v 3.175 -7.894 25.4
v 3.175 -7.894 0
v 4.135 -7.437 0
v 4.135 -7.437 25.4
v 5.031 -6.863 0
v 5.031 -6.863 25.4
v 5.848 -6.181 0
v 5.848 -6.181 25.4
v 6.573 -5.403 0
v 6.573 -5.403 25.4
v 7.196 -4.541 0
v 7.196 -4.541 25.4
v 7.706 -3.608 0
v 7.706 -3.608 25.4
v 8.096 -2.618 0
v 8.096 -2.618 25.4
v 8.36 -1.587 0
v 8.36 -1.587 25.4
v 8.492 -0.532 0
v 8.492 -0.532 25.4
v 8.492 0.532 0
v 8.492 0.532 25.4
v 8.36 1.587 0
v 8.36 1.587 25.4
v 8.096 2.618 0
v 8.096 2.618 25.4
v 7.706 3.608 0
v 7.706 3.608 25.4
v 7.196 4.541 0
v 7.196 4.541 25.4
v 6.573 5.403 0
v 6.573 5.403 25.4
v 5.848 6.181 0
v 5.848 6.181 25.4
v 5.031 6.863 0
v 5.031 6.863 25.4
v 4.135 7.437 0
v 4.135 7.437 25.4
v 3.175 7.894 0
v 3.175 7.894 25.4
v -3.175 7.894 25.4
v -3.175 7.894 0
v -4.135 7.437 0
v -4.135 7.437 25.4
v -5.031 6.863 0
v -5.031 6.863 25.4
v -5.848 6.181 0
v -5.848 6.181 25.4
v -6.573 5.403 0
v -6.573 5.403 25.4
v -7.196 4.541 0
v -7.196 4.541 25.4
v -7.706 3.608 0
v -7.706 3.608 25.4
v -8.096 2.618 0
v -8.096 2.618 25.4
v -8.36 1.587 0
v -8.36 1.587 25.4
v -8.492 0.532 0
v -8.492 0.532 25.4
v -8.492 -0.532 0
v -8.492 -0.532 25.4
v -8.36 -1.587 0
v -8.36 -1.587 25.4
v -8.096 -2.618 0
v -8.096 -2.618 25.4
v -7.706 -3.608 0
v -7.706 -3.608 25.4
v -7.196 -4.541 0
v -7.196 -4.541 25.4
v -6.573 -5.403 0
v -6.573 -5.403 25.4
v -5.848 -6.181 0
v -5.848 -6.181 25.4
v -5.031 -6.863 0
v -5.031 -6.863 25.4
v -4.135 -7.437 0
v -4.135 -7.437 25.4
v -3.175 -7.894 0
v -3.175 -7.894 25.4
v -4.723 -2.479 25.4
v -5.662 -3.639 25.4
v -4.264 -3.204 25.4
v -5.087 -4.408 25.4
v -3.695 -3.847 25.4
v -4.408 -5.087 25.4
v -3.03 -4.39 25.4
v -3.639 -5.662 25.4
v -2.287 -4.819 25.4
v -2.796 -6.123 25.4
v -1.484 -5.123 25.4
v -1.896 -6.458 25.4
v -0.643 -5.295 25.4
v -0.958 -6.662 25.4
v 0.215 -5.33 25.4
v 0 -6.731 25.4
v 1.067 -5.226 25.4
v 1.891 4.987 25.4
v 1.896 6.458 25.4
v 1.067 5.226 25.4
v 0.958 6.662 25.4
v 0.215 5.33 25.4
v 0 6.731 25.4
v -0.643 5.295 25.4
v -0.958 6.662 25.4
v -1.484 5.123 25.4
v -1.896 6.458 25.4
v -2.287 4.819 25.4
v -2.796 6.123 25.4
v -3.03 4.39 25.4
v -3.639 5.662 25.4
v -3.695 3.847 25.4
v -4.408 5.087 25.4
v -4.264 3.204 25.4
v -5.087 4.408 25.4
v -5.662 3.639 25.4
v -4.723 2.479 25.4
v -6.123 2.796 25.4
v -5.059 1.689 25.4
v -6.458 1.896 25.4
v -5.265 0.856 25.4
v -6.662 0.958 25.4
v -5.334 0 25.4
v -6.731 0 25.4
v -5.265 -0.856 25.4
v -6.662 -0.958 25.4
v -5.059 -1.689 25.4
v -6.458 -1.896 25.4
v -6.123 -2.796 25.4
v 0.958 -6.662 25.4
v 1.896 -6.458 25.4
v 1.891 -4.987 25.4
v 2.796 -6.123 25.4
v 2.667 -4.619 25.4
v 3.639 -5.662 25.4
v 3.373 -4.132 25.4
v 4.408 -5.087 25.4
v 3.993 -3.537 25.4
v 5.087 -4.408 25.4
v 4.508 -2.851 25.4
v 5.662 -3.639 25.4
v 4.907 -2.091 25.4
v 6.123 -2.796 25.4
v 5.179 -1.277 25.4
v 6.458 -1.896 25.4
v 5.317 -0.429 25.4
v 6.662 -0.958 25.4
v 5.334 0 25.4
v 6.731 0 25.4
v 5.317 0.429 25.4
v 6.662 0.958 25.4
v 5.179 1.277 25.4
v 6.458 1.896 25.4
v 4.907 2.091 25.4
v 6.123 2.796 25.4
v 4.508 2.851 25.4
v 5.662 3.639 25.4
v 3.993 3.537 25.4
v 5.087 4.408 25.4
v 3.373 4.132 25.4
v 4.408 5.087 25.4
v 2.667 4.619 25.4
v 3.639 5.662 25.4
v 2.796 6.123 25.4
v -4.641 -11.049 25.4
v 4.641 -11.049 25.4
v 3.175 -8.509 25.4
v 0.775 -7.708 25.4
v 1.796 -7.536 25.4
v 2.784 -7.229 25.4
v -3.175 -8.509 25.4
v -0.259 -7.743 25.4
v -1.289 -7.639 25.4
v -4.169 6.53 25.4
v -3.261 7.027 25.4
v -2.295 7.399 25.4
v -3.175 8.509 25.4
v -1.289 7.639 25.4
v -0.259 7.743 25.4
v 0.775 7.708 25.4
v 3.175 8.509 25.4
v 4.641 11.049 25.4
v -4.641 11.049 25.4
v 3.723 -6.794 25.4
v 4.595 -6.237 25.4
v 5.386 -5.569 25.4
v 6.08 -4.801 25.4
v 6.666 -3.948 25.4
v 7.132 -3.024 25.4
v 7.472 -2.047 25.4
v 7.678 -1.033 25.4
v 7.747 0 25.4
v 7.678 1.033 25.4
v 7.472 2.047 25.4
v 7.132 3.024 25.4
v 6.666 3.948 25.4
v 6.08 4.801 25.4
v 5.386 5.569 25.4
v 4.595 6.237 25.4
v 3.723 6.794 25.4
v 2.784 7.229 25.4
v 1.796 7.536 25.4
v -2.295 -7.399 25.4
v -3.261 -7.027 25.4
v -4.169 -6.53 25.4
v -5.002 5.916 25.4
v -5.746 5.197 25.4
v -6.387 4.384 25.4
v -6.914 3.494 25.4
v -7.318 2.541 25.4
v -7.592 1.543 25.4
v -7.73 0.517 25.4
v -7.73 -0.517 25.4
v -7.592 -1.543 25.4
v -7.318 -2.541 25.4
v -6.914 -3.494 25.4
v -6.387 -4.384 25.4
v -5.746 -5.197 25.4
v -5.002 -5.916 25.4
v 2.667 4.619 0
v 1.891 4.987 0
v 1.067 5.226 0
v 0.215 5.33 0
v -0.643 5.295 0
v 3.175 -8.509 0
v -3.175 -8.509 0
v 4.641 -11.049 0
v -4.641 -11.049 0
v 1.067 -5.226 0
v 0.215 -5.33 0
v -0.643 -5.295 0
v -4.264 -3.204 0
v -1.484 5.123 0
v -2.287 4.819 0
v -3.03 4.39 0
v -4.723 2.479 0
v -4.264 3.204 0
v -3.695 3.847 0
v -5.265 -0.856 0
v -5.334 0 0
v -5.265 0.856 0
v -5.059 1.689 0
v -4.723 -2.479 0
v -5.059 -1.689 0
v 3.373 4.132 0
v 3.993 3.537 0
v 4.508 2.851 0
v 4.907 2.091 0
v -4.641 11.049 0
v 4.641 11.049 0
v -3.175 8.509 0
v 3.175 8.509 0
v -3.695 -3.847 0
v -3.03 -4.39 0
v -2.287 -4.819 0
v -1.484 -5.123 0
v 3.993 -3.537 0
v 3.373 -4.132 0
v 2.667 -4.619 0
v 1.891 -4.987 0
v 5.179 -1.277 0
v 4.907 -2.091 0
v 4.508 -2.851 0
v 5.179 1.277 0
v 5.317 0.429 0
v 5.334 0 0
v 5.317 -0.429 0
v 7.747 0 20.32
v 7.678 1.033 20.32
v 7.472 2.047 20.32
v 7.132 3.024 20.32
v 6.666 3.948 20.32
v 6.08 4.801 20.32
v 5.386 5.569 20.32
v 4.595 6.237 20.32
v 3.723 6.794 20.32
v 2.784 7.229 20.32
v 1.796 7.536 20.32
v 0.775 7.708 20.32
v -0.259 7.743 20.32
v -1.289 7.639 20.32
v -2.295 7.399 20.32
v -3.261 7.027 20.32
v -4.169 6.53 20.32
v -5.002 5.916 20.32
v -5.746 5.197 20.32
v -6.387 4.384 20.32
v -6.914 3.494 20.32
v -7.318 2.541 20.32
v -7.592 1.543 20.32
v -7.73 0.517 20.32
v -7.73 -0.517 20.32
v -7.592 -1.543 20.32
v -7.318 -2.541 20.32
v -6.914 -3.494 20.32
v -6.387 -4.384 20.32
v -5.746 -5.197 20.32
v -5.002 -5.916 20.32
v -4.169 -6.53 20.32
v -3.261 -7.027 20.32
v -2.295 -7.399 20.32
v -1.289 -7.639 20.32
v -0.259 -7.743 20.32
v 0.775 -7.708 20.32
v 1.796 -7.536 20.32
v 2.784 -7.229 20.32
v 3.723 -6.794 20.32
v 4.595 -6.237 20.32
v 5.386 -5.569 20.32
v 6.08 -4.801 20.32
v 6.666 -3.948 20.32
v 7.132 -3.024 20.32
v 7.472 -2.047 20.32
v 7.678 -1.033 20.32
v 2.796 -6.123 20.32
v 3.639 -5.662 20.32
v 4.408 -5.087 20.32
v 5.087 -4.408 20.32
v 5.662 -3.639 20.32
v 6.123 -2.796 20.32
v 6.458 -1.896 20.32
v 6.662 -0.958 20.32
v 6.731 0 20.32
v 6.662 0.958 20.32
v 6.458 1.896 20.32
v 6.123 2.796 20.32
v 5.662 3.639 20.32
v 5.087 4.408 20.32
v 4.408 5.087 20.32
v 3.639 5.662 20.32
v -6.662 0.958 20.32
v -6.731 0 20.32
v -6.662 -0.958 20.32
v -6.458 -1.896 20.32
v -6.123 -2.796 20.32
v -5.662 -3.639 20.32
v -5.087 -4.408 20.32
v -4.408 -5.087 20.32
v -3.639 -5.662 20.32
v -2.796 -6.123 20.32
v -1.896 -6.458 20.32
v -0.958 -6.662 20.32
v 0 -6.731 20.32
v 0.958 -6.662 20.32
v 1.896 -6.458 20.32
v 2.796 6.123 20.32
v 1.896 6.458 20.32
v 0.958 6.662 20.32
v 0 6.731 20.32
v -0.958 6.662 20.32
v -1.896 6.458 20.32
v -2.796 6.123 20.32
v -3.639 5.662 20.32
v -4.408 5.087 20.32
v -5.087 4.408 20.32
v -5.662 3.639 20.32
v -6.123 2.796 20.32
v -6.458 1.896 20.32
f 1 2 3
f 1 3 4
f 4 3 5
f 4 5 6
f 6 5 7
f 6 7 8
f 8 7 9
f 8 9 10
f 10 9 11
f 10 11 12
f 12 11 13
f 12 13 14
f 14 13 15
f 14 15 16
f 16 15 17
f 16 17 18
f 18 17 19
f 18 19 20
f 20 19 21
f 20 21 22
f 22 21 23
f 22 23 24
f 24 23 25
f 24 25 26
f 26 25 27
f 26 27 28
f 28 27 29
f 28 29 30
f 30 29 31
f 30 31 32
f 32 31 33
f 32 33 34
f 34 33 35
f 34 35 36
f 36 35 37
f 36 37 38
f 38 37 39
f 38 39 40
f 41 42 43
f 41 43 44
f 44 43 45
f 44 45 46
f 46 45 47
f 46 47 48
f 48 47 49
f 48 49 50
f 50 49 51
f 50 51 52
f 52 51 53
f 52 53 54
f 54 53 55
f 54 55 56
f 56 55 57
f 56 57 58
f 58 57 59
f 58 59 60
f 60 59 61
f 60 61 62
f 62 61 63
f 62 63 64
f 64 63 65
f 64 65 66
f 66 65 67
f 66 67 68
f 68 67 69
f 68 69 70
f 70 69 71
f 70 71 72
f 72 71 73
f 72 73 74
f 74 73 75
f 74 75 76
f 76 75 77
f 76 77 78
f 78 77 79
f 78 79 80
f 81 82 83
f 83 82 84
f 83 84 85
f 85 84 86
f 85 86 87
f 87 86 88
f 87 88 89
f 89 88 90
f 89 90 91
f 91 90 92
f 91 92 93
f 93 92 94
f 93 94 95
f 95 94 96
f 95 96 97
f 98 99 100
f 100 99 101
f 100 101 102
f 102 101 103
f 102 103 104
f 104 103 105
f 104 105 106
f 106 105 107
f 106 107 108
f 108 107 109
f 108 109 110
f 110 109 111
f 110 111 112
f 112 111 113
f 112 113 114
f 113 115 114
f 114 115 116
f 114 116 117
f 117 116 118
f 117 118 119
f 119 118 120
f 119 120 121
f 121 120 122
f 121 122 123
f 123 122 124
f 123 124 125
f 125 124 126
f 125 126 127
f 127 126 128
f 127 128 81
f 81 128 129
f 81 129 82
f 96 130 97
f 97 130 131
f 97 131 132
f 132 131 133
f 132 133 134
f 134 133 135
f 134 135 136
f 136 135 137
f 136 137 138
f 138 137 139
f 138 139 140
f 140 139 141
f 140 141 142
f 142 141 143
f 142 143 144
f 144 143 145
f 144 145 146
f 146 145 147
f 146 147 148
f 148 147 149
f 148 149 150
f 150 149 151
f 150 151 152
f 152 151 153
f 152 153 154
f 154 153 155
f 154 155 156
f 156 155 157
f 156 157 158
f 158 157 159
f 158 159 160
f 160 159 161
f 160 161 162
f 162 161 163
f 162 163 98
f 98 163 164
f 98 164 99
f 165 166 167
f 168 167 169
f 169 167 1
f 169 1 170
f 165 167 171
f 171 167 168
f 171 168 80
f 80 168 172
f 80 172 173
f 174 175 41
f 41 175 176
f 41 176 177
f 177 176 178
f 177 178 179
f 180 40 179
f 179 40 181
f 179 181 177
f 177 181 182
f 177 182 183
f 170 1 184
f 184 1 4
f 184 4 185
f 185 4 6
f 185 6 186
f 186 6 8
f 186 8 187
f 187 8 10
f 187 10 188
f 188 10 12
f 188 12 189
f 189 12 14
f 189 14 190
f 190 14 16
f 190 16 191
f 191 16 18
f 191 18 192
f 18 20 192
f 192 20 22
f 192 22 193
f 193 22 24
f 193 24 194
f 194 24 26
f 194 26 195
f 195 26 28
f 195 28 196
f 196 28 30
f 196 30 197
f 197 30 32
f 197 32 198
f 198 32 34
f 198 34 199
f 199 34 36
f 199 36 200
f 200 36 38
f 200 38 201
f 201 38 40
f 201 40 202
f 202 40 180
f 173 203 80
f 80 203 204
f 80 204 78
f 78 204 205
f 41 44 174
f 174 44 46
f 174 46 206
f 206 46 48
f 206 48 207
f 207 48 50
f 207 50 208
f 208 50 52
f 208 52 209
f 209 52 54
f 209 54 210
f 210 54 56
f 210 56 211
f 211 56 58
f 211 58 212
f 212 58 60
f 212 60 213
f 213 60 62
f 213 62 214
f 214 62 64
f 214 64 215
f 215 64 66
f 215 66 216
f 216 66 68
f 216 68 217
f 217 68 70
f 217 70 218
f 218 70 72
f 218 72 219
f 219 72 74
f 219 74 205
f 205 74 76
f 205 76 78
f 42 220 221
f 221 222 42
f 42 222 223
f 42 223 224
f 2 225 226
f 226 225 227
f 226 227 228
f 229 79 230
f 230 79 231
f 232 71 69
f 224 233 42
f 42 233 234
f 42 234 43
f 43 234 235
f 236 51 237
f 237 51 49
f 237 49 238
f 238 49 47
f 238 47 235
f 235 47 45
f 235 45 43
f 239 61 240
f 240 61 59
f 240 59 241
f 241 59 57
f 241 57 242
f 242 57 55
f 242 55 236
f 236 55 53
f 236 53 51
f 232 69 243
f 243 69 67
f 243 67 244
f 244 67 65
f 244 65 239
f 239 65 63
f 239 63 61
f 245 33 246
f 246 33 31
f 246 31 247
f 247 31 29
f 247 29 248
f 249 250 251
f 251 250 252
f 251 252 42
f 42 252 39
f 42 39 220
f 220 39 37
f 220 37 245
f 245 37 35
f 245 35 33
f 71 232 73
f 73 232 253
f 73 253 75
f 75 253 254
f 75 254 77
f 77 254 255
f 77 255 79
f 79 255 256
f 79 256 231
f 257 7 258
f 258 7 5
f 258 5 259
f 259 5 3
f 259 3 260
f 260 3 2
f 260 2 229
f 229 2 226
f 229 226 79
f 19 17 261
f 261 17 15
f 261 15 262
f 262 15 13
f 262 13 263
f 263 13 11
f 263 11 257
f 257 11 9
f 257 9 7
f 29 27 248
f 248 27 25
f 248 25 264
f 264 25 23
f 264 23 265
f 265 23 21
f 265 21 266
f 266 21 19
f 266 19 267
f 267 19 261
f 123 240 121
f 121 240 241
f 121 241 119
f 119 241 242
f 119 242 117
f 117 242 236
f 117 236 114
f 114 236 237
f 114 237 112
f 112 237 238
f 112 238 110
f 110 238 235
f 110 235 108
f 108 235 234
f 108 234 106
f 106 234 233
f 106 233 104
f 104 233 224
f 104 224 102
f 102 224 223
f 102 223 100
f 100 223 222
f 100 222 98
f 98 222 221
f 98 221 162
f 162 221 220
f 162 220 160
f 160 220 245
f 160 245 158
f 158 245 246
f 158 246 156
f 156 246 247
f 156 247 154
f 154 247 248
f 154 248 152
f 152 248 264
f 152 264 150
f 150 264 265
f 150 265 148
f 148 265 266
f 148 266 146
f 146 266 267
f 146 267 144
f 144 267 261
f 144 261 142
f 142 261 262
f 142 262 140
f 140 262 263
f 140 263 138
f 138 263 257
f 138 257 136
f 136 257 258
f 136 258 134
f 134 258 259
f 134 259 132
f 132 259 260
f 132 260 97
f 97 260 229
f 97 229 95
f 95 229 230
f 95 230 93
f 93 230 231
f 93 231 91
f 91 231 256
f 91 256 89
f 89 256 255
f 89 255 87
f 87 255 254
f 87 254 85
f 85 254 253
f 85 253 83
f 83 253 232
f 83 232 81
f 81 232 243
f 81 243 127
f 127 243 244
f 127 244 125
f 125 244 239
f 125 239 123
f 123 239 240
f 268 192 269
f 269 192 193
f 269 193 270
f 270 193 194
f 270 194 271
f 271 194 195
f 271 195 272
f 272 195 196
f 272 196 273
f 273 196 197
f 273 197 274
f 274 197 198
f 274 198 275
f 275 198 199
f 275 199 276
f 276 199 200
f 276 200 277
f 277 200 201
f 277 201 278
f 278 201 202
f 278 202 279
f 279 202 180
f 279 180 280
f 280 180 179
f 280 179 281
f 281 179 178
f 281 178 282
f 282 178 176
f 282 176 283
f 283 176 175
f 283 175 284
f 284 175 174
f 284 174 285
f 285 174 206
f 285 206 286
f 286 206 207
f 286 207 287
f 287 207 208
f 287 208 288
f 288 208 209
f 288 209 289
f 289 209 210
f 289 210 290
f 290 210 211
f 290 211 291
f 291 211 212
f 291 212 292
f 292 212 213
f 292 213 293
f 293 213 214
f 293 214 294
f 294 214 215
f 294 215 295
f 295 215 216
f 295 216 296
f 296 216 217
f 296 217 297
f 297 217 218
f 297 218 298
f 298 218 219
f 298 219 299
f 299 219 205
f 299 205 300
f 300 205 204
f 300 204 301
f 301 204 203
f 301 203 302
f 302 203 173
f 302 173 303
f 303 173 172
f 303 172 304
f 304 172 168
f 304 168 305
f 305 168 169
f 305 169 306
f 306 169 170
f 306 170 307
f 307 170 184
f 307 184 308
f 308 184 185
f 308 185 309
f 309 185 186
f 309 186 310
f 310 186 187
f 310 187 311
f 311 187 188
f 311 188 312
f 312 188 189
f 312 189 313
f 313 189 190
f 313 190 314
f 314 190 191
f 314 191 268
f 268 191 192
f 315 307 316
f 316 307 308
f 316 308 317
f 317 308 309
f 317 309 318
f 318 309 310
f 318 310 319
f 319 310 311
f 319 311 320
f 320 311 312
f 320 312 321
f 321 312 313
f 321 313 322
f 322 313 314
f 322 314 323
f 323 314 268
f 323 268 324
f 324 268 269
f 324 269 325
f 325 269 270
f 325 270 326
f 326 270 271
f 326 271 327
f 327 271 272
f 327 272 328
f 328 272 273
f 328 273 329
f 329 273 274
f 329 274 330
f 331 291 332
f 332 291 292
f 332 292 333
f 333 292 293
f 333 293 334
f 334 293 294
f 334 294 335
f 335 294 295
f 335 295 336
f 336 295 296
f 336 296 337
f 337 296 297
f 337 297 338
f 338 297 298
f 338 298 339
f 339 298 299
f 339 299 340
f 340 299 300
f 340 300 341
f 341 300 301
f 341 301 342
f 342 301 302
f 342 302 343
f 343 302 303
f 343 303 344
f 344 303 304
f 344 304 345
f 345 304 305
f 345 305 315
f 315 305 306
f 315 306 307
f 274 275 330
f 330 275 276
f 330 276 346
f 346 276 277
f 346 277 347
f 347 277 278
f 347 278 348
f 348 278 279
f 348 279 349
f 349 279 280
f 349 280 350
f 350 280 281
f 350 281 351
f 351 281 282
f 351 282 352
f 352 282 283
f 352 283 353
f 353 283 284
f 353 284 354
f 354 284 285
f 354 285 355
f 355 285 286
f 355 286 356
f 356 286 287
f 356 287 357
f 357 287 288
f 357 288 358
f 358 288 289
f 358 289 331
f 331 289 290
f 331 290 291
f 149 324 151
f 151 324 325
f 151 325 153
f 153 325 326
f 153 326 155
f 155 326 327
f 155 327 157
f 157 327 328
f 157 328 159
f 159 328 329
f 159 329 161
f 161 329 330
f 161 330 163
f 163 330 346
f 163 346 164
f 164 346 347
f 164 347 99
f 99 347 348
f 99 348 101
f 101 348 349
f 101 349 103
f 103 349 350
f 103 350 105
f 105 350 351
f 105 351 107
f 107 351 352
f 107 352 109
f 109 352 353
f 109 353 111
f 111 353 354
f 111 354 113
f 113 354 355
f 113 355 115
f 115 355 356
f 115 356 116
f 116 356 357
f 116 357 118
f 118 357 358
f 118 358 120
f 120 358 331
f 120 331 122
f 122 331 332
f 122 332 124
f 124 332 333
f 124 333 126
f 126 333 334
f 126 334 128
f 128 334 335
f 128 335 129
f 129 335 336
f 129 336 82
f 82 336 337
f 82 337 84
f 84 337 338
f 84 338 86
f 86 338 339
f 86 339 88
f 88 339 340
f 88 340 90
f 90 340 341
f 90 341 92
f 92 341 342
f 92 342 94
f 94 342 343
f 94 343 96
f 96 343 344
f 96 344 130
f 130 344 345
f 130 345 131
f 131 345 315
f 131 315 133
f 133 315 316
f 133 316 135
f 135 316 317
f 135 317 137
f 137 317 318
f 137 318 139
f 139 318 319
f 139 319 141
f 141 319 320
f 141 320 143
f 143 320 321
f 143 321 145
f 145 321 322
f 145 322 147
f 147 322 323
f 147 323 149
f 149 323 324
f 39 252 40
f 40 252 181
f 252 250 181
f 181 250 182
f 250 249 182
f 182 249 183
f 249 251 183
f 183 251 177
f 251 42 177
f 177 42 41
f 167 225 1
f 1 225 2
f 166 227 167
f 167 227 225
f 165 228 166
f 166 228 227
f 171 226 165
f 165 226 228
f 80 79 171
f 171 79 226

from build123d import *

# Parameters (mm, degrees)
SKETCH1_R           = 8.509
SKETCH1_R_2         = 5.334
BOSS_EXTRUDE1_DEPTH = 25.4
SKETCH2_R           = 7.747
SKETCH2_R_2         = 6.731
CUT_EXTRUDE1_DEPTH  = 5.08
BOSS_EXTRUDE2_DEPTH = 25.4


with BuildPart() as part:
    # Sketch1 → Boss-Extrude1 (new body)
    with BuildSketch(Plane.XY):
        Circle(SKETCH1_R)
        Circle(SKETCH1_R_2, mode=Mode.SUBTRACT)
    extrude(amount=BOSS_EXTRUDE1_DEPTH)

    # Sketch2 → Cut-Extrude1 (cut)
    with BuildSketch(Plane.XY.offset(25.4)):
        Circle(SKETCH2_R)
        Circle(SKETCH2_R_2, mode=Mode.SUBTRACT)
    extrude(amount=-CUT_EXTRUDE1_DEPTH, mode=Mode.SUBTRACT)

    # Sketch3 → Boss-Extrude2 (add)
    with BuildSketch(Plane.XY):
        with BuildLine():
            Line((-3.175, 7.894457296), (-3.175, 8.509))
            Line((-3.175, 8.509), (-4.641469684, 11.049))
            Line((-4.641469684, 11.049), (4.641469684, 11.049))
            Line((4.641469684, 11.049), (3.175, 8.509))
            Line((3.175, 8.509), (3.175, 7.894457296))
            ThreePointArc((3.175, 7.894457296), (0, 8.509), (-3.175, 7.894457296))
        make_face()
    boss_extrude2 = extrude(amount=BOSS_EXTRUDE2_DEPTH)

    # Mirror1: Boss-Extrude2 across plane
    add(boss_extrude2.mirror(Plane.ZX))


solid = part.part
